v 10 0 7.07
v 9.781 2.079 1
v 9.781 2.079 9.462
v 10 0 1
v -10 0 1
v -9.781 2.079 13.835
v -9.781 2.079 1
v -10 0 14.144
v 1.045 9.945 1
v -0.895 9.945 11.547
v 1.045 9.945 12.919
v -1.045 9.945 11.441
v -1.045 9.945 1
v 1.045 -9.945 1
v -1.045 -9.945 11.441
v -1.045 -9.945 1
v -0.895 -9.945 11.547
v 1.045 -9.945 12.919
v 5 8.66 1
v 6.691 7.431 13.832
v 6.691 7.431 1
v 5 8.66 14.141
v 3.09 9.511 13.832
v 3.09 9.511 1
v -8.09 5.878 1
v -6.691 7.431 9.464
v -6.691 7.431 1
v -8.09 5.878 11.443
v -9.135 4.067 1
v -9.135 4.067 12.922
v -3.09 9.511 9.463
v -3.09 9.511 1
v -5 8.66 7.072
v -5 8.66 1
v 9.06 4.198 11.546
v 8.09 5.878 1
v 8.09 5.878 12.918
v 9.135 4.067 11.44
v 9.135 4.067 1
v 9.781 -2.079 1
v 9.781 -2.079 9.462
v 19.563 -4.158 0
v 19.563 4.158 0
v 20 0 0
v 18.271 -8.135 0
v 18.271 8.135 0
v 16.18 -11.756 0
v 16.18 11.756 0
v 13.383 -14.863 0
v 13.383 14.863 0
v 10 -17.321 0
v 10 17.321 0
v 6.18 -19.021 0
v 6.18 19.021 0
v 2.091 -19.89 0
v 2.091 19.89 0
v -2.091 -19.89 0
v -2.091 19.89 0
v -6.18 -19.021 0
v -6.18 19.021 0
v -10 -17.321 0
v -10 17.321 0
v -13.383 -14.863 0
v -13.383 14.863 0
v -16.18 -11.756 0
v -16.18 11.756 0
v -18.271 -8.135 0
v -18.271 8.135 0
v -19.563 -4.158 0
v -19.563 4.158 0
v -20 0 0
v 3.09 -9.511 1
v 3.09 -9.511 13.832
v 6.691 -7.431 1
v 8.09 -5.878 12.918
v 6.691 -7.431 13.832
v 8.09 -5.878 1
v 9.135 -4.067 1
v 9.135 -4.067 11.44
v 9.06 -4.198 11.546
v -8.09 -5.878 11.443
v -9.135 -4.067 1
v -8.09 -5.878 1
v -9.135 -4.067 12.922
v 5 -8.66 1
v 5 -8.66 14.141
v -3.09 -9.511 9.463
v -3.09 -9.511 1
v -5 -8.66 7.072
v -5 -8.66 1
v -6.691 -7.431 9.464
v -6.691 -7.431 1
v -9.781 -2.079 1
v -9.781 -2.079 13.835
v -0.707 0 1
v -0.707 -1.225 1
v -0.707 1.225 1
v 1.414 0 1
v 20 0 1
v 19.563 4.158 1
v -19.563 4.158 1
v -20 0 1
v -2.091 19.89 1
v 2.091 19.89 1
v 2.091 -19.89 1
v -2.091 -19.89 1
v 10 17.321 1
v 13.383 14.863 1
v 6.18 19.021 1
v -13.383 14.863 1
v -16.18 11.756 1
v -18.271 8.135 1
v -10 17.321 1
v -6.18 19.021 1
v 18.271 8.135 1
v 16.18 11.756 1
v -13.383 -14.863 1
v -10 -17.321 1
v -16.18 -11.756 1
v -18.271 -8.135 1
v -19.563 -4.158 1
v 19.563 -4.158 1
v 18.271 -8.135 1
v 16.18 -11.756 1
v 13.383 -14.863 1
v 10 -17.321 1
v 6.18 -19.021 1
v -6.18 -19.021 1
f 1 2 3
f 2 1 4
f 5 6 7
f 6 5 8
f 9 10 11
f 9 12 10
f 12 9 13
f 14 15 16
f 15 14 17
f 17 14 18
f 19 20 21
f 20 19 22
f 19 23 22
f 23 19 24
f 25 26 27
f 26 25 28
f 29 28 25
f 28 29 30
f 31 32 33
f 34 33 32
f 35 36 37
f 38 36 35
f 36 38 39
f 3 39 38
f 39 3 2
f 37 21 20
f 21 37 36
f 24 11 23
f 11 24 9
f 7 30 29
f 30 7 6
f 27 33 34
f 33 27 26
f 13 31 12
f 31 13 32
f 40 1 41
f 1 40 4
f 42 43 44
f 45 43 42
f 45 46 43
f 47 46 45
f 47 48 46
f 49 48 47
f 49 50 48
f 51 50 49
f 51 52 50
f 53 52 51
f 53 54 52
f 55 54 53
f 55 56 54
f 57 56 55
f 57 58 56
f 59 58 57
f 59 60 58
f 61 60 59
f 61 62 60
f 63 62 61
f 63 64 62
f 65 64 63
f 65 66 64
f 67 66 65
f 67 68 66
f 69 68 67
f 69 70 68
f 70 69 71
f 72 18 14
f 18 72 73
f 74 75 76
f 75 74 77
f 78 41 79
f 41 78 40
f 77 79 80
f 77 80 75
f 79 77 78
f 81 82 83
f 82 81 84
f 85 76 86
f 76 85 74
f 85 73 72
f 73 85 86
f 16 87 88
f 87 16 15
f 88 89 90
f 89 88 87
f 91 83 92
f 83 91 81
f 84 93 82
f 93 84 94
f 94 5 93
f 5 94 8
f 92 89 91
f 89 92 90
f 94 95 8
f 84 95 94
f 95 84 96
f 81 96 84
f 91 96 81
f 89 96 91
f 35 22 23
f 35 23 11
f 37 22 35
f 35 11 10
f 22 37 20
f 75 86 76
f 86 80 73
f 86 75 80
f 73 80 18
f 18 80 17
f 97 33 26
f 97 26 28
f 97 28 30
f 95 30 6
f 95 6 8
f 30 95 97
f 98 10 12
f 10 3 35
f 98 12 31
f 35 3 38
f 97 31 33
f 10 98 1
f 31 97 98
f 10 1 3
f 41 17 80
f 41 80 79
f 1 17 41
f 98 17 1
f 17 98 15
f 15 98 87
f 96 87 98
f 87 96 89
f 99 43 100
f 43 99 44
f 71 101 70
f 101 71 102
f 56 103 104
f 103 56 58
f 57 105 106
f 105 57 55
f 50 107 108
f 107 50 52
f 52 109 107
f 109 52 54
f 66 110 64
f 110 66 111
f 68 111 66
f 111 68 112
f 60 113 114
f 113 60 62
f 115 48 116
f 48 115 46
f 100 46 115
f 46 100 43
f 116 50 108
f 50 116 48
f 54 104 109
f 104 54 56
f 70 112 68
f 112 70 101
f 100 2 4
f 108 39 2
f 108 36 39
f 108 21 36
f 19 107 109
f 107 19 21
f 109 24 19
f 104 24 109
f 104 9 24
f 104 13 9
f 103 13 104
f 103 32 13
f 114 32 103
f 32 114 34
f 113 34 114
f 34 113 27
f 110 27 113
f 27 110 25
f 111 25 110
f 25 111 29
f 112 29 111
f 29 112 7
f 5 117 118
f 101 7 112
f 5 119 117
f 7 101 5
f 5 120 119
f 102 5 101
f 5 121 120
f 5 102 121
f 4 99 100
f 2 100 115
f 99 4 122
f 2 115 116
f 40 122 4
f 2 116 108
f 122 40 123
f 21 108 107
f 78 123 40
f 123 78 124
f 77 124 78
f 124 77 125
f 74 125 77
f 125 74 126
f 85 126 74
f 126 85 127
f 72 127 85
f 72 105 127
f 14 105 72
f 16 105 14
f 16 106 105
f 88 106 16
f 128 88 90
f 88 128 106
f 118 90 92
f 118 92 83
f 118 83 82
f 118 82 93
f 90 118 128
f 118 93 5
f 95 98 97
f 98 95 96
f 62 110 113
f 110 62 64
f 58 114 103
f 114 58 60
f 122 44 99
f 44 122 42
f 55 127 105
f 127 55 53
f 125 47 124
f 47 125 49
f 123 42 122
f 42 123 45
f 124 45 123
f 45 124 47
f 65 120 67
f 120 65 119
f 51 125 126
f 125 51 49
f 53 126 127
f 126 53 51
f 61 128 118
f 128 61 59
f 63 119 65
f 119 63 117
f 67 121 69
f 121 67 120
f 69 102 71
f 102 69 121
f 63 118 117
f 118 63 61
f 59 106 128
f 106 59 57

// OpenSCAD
difference (){
    cylinder(20, 10, 10);
    rotate([45, -35.26, 0]){
        cube(20);
    }    
}    
cylinder(1, 20, 20);
